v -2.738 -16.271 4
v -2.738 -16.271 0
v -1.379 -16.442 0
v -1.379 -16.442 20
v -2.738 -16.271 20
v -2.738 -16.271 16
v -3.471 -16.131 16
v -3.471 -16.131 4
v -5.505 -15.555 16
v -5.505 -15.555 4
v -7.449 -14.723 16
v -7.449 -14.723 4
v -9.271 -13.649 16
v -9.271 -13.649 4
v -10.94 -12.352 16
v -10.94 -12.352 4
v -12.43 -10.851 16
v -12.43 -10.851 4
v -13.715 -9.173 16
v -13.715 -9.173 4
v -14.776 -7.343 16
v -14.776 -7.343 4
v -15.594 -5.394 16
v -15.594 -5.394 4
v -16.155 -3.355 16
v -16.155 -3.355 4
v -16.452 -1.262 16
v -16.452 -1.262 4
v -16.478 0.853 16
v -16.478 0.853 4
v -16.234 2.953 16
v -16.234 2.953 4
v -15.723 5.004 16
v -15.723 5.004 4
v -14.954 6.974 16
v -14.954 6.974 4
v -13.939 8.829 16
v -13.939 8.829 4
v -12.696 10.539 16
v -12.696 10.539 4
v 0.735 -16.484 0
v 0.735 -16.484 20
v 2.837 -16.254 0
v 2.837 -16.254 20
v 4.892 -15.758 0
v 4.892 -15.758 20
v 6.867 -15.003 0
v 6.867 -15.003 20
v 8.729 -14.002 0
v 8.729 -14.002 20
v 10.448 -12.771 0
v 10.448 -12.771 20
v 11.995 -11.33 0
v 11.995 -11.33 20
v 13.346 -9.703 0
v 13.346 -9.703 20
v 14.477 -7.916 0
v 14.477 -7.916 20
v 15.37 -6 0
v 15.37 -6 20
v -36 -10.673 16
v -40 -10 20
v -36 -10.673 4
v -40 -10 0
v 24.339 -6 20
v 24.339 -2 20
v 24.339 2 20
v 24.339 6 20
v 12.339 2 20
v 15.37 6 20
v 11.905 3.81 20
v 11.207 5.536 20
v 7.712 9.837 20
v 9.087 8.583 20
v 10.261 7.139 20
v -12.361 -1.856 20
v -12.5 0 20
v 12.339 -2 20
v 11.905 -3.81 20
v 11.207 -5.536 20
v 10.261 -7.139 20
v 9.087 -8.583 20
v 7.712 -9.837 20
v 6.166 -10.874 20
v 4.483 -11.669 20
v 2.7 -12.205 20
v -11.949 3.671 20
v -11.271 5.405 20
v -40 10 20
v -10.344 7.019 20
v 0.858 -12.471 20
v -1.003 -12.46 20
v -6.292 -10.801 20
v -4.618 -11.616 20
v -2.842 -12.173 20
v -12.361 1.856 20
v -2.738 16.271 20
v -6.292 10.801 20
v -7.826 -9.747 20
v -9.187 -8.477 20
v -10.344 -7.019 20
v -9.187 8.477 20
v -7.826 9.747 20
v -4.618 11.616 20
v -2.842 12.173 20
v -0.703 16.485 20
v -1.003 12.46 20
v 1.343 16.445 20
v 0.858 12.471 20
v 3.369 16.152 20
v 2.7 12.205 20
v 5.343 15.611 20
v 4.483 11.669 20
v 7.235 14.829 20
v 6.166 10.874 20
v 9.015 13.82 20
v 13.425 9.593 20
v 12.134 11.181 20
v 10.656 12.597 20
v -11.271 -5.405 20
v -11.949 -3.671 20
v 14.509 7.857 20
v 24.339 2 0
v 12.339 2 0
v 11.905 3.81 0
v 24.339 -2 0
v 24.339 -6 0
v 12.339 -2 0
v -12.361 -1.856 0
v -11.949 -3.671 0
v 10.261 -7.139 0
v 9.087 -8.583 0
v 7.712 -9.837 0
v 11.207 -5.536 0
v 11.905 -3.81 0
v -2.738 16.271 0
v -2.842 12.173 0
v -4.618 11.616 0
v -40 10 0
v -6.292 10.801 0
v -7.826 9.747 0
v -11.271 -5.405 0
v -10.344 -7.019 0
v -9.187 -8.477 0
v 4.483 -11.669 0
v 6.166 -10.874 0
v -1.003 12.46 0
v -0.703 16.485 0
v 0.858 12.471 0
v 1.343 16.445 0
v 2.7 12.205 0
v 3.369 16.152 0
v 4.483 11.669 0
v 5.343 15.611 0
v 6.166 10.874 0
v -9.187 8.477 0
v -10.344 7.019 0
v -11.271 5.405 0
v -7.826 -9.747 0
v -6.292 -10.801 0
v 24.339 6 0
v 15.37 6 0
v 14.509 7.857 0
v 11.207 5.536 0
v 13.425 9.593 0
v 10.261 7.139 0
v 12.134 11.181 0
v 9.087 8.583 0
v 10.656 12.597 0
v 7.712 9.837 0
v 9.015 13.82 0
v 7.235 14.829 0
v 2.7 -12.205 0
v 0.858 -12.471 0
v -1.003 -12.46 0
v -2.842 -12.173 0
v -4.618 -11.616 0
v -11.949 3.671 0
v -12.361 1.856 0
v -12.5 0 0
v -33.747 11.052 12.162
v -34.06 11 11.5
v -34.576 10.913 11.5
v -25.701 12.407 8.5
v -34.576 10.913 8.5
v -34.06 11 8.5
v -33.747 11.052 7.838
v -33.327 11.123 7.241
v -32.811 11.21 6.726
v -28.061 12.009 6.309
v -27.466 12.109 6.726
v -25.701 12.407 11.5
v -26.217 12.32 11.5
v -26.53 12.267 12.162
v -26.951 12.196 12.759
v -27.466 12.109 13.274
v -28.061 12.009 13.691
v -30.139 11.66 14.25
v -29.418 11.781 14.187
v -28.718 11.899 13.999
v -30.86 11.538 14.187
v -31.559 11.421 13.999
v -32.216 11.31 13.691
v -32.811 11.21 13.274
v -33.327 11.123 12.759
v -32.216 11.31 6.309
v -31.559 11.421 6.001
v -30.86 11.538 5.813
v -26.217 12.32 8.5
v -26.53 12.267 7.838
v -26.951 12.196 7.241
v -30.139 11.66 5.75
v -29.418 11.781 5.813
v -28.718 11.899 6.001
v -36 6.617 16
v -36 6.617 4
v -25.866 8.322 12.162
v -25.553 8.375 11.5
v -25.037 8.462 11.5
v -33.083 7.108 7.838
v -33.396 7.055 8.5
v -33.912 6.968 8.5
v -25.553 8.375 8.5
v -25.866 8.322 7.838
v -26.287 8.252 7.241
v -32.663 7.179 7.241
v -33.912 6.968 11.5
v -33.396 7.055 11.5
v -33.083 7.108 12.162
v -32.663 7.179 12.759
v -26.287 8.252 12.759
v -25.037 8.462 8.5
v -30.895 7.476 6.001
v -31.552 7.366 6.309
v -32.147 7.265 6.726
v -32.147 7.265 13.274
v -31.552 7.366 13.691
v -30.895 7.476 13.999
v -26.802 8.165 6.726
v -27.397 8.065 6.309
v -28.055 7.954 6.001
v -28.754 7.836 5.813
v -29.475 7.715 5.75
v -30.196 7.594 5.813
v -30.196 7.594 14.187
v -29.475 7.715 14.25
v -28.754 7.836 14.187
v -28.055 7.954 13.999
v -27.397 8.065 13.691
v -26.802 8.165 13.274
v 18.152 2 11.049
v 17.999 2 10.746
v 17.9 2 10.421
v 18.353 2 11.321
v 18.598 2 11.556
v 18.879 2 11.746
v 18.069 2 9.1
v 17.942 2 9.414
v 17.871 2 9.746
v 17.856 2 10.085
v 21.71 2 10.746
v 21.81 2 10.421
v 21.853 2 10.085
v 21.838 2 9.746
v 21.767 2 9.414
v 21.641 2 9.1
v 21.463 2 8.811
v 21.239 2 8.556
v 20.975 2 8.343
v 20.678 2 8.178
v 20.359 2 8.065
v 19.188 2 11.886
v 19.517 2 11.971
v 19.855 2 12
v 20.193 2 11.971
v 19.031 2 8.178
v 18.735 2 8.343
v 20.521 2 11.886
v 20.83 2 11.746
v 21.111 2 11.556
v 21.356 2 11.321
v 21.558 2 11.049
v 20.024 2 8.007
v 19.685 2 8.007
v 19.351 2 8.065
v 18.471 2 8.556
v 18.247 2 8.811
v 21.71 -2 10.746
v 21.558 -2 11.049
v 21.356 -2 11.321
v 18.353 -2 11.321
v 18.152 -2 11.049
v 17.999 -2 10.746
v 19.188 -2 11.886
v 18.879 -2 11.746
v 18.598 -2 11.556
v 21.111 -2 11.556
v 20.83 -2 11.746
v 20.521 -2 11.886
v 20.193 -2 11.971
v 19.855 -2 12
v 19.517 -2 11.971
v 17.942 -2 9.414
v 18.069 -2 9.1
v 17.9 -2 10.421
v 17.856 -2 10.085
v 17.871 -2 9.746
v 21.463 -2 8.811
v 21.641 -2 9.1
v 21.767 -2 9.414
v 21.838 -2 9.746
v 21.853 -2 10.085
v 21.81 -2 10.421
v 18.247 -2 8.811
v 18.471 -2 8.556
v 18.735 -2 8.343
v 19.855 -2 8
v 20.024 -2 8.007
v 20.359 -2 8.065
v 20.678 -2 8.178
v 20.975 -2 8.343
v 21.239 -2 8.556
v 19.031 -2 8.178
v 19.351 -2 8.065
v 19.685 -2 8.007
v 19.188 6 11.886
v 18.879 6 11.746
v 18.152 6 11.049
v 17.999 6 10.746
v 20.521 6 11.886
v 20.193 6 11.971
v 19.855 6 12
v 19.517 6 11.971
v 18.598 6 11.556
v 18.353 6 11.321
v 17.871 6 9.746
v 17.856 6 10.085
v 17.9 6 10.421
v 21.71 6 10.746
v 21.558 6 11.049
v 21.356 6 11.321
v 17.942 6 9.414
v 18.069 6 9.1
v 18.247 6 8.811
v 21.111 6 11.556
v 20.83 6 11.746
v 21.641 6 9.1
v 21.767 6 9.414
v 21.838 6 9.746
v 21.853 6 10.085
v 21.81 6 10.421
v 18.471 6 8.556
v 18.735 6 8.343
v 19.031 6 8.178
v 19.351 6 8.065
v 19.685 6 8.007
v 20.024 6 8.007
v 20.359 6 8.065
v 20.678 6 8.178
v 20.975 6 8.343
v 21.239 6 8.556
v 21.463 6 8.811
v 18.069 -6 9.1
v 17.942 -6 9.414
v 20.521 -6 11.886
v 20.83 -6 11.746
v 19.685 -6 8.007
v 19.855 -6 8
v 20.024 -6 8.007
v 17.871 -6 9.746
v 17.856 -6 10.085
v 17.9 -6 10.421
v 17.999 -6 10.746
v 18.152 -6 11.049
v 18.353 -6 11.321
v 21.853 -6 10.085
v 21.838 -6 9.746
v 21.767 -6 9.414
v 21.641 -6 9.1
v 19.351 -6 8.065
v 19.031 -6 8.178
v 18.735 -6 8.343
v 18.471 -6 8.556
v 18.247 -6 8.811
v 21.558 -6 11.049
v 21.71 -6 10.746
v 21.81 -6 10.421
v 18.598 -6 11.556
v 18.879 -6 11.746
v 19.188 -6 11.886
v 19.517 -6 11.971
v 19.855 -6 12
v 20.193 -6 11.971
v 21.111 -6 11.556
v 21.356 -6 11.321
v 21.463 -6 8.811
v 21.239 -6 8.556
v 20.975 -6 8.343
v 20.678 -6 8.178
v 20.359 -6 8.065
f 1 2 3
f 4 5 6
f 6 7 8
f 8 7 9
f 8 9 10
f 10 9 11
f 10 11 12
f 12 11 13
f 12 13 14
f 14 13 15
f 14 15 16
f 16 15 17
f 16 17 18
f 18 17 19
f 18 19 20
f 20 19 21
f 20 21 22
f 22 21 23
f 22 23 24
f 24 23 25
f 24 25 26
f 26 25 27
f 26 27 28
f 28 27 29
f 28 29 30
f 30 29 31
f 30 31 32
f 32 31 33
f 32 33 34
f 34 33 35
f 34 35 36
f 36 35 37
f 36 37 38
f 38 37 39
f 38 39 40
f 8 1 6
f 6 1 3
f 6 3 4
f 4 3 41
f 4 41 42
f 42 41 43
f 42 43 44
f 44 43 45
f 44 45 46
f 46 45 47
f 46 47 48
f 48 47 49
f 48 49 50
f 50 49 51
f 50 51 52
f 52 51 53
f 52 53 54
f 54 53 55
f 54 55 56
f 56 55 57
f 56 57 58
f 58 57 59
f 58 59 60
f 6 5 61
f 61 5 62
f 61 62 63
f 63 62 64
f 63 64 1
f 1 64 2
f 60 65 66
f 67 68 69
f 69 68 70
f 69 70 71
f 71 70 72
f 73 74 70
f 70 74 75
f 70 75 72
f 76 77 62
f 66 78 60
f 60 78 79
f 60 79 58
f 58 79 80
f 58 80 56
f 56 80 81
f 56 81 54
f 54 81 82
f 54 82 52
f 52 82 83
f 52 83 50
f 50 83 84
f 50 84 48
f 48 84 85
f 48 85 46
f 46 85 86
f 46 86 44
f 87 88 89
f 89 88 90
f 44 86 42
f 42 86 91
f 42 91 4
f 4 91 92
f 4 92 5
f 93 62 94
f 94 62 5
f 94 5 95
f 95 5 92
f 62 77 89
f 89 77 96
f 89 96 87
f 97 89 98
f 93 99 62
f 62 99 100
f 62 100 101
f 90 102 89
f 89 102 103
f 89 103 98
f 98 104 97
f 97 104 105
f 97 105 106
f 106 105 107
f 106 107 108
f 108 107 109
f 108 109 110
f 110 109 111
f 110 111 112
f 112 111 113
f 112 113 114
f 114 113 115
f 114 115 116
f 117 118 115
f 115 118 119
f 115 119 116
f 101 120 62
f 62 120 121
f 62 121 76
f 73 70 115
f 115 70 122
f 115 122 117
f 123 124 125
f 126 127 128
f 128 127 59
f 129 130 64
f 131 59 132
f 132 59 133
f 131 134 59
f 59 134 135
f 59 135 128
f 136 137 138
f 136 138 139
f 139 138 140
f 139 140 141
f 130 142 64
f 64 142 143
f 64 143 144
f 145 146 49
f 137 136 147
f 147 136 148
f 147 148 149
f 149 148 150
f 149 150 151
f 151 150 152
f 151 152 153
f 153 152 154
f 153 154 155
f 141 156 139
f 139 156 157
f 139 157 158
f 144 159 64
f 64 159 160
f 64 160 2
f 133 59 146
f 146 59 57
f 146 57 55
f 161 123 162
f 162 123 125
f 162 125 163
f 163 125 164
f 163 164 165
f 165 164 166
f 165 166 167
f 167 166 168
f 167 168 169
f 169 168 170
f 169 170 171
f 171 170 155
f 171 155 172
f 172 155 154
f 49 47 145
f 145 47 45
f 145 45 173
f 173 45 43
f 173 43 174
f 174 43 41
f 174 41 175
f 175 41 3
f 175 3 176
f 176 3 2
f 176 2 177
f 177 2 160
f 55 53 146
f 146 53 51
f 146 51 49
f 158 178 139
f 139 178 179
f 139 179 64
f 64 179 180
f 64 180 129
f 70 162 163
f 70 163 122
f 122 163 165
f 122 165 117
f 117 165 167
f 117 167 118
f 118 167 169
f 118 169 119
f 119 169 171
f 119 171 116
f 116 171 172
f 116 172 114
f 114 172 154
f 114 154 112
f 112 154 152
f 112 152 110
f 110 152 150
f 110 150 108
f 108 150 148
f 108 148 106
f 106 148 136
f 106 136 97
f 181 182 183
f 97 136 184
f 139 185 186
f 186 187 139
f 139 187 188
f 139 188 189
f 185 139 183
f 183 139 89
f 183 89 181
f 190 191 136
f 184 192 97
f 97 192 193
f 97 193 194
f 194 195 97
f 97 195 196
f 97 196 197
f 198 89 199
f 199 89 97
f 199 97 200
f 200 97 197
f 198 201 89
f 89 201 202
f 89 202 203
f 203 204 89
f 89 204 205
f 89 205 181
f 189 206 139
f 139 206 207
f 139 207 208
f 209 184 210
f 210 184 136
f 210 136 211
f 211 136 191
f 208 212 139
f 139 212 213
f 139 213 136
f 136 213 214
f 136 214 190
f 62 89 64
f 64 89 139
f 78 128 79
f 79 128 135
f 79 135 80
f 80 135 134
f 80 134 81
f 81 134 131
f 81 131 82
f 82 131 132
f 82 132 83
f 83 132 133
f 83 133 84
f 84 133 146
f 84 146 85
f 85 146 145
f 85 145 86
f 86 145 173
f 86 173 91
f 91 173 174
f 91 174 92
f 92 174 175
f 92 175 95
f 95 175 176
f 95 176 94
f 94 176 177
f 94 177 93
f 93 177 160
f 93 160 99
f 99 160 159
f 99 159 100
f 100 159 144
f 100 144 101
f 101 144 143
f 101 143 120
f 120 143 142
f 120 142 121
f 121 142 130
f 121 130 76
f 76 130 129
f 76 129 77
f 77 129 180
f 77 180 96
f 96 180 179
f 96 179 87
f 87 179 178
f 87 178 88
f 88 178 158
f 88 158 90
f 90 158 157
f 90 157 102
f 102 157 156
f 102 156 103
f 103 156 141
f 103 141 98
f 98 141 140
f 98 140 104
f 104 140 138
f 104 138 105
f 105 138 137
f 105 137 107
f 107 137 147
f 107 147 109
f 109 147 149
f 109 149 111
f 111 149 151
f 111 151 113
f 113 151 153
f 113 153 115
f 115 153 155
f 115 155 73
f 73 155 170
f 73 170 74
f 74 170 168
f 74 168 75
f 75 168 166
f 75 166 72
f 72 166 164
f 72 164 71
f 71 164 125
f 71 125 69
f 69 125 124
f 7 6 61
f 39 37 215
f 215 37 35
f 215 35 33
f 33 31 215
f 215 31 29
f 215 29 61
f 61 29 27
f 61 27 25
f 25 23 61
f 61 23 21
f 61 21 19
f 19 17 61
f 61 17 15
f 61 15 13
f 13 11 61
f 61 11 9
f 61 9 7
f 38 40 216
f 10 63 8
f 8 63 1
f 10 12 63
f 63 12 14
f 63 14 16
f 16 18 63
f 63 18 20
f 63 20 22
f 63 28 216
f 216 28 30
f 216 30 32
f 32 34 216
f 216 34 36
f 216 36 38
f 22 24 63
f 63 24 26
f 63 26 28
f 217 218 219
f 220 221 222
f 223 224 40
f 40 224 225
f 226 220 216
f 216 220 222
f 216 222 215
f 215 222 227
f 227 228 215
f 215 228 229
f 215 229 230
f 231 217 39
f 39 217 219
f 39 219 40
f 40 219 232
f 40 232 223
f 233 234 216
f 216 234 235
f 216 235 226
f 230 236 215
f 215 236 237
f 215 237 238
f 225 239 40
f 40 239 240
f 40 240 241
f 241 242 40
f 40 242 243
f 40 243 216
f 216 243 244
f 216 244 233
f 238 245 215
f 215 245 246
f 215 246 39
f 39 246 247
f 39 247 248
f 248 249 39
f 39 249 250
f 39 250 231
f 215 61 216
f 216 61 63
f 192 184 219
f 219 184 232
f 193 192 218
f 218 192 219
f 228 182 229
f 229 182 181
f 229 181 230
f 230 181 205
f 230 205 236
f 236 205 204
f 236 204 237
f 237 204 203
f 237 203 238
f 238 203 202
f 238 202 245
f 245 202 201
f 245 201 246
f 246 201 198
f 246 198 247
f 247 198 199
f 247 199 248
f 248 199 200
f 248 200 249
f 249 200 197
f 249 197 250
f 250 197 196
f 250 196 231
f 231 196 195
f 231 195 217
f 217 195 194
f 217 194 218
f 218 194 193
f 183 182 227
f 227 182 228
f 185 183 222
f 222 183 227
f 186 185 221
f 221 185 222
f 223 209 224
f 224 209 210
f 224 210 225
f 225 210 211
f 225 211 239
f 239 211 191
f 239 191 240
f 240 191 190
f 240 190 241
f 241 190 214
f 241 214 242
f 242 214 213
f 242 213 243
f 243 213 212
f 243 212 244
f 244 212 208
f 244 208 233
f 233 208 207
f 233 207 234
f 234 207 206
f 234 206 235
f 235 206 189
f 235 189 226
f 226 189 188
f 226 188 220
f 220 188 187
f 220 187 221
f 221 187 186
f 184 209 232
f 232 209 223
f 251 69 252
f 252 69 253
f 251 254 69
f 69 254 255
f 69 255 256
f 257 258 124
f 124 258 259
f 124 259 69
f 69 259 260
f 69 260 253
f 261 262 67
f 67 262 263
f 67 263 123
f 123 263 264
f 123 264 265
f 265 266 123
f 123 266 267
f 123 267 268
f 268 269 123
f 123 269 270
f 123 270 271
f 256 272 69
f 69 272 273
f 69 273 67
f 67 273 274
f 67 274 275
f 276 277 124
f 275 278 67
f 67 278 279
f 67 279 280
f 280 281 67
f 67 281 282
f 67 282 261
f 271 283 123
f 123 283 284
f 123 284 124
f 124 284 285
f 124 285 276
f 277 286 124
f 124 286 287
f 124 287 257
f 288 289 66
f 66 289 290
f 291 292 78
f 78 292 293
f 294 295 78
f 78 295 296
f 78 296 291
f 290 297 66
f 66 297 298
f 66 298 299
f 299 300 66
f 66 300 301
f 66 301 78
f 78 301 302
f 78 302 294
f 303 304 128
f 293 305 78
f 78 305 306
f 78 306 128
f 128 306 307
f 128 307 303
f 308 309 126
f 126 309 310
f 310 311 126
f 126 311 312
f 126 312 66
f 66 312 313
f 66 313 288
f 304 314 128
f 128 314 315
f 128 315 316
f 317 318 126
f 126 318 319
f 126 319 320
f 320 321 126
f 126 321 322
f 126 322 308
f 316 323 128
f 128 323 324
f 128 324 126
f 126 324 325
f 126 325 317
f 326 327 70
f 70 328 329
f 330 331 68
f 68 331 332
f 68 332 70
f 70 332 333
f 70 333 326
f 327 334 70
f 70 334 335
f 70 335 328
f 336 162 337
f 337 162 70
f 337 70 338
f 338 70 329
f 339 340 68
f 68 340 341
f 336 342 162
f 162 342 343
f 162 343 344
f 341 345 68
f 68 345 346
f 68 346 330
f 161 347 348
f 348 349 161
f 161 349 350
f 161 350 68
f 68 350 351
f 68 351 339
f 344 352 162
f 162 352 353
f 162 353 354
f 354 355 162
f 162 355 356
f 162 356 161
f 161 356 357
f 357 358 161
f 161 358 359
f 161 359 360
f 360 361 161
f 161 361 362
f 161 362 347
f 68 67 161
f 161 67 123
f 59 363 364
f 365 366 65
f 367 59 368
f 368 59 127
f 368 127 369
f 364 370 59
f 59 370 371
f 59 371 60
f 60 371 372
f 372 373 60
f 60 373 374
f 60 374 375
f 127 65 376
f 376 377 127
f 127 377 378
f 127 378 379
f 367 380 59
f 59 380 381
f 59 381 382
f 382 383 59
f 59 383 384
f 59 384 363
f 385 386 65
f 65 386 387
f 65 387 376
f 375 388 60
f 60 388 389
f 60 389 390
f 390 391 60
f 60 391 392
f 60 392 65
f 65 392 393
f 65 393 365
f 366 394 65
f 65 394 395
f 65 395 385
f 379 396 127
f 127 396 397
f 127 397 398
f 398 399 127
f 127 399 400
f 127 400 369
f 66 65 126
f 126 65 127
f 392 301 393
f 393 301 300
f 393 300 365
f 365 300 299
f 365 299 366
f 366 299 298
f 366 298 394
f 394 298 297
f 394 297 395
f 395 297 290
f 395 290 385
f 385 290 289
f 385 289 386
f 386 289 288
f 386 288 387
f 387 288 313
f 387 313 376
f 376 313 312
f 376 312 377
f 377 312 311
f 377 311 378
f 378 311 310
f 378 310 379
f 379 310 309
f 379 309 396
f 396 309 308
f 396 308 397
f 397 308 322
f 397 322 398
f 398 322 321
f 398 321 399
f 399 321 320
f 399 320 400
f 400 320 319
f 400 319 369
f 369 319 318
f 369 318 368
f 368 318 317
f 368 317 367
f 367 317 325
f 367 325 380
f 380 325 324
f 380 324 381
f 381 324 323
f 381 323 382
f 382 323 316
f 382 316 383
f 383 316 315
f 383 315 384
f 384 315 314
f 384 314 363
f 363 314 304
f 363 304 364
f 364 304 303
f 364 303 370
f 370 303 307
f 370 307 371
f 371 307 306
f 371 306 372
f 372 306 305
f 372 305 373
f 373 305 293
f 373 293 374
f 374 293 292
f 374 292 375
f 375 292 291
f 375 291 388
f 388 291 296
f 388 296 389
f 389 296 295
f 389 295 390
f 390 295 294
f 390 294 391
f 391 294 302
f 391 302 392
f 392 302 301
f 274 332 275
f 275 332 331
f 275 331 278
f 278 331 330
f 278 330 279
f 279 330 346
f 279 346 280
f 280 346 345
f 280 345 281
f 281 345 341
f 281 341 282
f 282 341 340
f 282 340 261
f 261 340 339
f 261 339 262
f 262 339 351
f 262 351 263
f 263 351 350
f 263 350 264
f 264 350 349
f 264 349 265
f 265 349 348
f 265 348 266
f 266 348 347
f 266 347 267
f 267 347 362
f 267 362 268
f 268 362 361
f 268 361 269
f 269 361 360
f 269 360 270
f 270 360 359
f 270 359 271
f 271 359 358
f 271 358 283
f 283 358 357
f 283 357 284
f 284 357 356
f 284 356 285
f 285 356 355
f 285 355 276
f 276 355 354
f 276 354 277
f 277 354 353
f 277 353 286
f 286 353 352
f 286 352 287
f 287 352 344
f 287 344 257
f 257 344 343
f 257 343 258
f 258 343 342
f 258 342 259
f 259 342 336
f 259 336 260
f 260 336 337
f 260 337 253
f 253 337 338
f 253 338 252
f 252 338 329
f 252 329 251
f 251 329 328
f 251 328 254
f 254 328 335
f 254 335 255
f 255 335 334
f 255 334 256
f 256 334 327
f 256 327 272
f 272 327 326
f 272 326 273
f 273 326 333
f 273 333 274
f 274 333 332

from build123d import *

# Parameters (mm, degrees)
SKETCH1_R               = 12.5
BOSS_EXTRUDE1_DEPTH     = 20
SHELL1_START            = 4
SHELL1_DEPTH            = 12
CUT_EXTRUDE1_DEPTH      = 5
CUT_EXTRUDE2_DEPTH      = 48.668123521
CUT_EXTRUDE2_DEPTH_BACK = 48.668123521
SKETCH5_W               = 12.044517282
SKETCH5_H               = 4
SKETCH6_W               = 12
SKETCH6_H               = 4
BOSS_EXTRUDE2_DEPTH     = 20
SKETCH7_R               = 2
CUT_EXTRUDE3_DEPTH      = 51.062460986


# Read off the part's stored shape, not the designer's step: Shell1
with BuildPart() as part:
    # Sketch1 → Boss-Extrude1 (new body)
    with BuildSketch(Plane.XY):
        with BuildLine():
            Line((-2.738458484, 16.271166066), (-40, 10))
            Line((-40, 10), (-40, -10))
            Line((-40, -10), (-2.738458484, -16.271166066))
            ThreePointArc((-2.738458484, -16.271166066), (16.5, 0), (-2.738458484, 16.271166066))
        make_face()
        Circle(SKETCH1_R, mode=Mode.SUBTRACT)
    extrude(amount=BOSS_EXTRUDE1_DEPTH)

    # Shell1 outline → Shell1 (cut)
    with BuildSketch(Plane.XY.offset(SHELL1_START)):
        with BuildLine():
            Line((-36, -10.67320522), (-2.738458484, -16.271166065))
            ThreePointArc((-2.738458484, -16.271166065), (-15.467708297, -5.744562646), (-12.695548653, 10.539119716))
            Line((-12.695548653, 10.539119716), (-36, 6.616950141))
            Line((-36, 6.616950141), (-36, -10.67320522))
        make_face()
    extrude(amount=SHELL1_DEPTH, mode=Mode.SUBTRACT)

    # Sketch4 → Cut-Extrude1 (cut)
    with BuildSketch(Plane(origin=(-2.738458484, 16.271166066, 0), x_dir=(0.9861312767016037, 0.16596718082459888, 0), z_dir=(-0.16596718082459888, 0.9861312767016037, 0))):
        with BuildLine():
            Line((-23.80908583, -8.5), (-23.28557926, -8.5))
            Line((-23.28557926, -8.5), (-23.28557926, -11.5))
            Line((-23.28557926, -11.5), (-23.80908583, -11.5))
            ThreePointArc((-23.80908583, -11.5), (-27.78557926, -14.25), (-31.76207269, -11.5))
            Line((-31.76207269, -11.5), (-32.28557926, -11.5))
            Line((-32.28557926, -11.5), (-32.28557926, -8.5))
            Line((-32.28557926, -8.5), (-31.76207269, -8.5))
            ThreePointArc((-31.76207269, -8.5), (-27.78557926, -5.75), (-23.80908583, -8.5))
        make_face()
    extrude(amount=-CUT_EXTRUDE1_DEPTH, mode=Mode.SUBTRACT)

    # Sketch5 → Cut-Extrude2 (cut, two sides: drawn at the far end of the back side and taken through both)
    with BuildSketch(Plane.XY.offset(20).offset(-CUT_EXTRUDE2_DEPTH_BACK)):
        with Locations((16.5, 0)):
            Rectangle(SKETCH5_W, SKETCH5_H)
    extrude(amount=CUT_EXTRUDE2_DEPTH + CUT_EXTRUDE2_DEPTH_BACK, mode=Mode.SUBTRACT)

    # Sketch6 → Boss-Extrude2 (add)
    with BuildSketch(Plane.XY.offset(20)):
        with Locations((18.338962679, -4)):
            Rectangle(SKETCH6_W, SKETCH6_H)
        with Locations((18.338962679, 4)):
            Rectangle(SKETCH6_W, SKETCH6_H)
    extrude(amount=-BOSS_EXTRUDE2_DEPTH)

    # Sketch7 → Cut-Extrude3 (cut, through all)
    with BuildSketch(Plane(origin=(0, 6, 0), x_dir=(1, 0, 0), z_dir=(0, 1, 0))):
        with Locations(Location((19.854694414, -10, 0), (0, 0, 270))):
            Circle(SKETCH7_R)
    extrude(amount=-CUT_EXTRUDE3_DEPTH, mode=Mode.SUBTRACT)


solid = part.part
